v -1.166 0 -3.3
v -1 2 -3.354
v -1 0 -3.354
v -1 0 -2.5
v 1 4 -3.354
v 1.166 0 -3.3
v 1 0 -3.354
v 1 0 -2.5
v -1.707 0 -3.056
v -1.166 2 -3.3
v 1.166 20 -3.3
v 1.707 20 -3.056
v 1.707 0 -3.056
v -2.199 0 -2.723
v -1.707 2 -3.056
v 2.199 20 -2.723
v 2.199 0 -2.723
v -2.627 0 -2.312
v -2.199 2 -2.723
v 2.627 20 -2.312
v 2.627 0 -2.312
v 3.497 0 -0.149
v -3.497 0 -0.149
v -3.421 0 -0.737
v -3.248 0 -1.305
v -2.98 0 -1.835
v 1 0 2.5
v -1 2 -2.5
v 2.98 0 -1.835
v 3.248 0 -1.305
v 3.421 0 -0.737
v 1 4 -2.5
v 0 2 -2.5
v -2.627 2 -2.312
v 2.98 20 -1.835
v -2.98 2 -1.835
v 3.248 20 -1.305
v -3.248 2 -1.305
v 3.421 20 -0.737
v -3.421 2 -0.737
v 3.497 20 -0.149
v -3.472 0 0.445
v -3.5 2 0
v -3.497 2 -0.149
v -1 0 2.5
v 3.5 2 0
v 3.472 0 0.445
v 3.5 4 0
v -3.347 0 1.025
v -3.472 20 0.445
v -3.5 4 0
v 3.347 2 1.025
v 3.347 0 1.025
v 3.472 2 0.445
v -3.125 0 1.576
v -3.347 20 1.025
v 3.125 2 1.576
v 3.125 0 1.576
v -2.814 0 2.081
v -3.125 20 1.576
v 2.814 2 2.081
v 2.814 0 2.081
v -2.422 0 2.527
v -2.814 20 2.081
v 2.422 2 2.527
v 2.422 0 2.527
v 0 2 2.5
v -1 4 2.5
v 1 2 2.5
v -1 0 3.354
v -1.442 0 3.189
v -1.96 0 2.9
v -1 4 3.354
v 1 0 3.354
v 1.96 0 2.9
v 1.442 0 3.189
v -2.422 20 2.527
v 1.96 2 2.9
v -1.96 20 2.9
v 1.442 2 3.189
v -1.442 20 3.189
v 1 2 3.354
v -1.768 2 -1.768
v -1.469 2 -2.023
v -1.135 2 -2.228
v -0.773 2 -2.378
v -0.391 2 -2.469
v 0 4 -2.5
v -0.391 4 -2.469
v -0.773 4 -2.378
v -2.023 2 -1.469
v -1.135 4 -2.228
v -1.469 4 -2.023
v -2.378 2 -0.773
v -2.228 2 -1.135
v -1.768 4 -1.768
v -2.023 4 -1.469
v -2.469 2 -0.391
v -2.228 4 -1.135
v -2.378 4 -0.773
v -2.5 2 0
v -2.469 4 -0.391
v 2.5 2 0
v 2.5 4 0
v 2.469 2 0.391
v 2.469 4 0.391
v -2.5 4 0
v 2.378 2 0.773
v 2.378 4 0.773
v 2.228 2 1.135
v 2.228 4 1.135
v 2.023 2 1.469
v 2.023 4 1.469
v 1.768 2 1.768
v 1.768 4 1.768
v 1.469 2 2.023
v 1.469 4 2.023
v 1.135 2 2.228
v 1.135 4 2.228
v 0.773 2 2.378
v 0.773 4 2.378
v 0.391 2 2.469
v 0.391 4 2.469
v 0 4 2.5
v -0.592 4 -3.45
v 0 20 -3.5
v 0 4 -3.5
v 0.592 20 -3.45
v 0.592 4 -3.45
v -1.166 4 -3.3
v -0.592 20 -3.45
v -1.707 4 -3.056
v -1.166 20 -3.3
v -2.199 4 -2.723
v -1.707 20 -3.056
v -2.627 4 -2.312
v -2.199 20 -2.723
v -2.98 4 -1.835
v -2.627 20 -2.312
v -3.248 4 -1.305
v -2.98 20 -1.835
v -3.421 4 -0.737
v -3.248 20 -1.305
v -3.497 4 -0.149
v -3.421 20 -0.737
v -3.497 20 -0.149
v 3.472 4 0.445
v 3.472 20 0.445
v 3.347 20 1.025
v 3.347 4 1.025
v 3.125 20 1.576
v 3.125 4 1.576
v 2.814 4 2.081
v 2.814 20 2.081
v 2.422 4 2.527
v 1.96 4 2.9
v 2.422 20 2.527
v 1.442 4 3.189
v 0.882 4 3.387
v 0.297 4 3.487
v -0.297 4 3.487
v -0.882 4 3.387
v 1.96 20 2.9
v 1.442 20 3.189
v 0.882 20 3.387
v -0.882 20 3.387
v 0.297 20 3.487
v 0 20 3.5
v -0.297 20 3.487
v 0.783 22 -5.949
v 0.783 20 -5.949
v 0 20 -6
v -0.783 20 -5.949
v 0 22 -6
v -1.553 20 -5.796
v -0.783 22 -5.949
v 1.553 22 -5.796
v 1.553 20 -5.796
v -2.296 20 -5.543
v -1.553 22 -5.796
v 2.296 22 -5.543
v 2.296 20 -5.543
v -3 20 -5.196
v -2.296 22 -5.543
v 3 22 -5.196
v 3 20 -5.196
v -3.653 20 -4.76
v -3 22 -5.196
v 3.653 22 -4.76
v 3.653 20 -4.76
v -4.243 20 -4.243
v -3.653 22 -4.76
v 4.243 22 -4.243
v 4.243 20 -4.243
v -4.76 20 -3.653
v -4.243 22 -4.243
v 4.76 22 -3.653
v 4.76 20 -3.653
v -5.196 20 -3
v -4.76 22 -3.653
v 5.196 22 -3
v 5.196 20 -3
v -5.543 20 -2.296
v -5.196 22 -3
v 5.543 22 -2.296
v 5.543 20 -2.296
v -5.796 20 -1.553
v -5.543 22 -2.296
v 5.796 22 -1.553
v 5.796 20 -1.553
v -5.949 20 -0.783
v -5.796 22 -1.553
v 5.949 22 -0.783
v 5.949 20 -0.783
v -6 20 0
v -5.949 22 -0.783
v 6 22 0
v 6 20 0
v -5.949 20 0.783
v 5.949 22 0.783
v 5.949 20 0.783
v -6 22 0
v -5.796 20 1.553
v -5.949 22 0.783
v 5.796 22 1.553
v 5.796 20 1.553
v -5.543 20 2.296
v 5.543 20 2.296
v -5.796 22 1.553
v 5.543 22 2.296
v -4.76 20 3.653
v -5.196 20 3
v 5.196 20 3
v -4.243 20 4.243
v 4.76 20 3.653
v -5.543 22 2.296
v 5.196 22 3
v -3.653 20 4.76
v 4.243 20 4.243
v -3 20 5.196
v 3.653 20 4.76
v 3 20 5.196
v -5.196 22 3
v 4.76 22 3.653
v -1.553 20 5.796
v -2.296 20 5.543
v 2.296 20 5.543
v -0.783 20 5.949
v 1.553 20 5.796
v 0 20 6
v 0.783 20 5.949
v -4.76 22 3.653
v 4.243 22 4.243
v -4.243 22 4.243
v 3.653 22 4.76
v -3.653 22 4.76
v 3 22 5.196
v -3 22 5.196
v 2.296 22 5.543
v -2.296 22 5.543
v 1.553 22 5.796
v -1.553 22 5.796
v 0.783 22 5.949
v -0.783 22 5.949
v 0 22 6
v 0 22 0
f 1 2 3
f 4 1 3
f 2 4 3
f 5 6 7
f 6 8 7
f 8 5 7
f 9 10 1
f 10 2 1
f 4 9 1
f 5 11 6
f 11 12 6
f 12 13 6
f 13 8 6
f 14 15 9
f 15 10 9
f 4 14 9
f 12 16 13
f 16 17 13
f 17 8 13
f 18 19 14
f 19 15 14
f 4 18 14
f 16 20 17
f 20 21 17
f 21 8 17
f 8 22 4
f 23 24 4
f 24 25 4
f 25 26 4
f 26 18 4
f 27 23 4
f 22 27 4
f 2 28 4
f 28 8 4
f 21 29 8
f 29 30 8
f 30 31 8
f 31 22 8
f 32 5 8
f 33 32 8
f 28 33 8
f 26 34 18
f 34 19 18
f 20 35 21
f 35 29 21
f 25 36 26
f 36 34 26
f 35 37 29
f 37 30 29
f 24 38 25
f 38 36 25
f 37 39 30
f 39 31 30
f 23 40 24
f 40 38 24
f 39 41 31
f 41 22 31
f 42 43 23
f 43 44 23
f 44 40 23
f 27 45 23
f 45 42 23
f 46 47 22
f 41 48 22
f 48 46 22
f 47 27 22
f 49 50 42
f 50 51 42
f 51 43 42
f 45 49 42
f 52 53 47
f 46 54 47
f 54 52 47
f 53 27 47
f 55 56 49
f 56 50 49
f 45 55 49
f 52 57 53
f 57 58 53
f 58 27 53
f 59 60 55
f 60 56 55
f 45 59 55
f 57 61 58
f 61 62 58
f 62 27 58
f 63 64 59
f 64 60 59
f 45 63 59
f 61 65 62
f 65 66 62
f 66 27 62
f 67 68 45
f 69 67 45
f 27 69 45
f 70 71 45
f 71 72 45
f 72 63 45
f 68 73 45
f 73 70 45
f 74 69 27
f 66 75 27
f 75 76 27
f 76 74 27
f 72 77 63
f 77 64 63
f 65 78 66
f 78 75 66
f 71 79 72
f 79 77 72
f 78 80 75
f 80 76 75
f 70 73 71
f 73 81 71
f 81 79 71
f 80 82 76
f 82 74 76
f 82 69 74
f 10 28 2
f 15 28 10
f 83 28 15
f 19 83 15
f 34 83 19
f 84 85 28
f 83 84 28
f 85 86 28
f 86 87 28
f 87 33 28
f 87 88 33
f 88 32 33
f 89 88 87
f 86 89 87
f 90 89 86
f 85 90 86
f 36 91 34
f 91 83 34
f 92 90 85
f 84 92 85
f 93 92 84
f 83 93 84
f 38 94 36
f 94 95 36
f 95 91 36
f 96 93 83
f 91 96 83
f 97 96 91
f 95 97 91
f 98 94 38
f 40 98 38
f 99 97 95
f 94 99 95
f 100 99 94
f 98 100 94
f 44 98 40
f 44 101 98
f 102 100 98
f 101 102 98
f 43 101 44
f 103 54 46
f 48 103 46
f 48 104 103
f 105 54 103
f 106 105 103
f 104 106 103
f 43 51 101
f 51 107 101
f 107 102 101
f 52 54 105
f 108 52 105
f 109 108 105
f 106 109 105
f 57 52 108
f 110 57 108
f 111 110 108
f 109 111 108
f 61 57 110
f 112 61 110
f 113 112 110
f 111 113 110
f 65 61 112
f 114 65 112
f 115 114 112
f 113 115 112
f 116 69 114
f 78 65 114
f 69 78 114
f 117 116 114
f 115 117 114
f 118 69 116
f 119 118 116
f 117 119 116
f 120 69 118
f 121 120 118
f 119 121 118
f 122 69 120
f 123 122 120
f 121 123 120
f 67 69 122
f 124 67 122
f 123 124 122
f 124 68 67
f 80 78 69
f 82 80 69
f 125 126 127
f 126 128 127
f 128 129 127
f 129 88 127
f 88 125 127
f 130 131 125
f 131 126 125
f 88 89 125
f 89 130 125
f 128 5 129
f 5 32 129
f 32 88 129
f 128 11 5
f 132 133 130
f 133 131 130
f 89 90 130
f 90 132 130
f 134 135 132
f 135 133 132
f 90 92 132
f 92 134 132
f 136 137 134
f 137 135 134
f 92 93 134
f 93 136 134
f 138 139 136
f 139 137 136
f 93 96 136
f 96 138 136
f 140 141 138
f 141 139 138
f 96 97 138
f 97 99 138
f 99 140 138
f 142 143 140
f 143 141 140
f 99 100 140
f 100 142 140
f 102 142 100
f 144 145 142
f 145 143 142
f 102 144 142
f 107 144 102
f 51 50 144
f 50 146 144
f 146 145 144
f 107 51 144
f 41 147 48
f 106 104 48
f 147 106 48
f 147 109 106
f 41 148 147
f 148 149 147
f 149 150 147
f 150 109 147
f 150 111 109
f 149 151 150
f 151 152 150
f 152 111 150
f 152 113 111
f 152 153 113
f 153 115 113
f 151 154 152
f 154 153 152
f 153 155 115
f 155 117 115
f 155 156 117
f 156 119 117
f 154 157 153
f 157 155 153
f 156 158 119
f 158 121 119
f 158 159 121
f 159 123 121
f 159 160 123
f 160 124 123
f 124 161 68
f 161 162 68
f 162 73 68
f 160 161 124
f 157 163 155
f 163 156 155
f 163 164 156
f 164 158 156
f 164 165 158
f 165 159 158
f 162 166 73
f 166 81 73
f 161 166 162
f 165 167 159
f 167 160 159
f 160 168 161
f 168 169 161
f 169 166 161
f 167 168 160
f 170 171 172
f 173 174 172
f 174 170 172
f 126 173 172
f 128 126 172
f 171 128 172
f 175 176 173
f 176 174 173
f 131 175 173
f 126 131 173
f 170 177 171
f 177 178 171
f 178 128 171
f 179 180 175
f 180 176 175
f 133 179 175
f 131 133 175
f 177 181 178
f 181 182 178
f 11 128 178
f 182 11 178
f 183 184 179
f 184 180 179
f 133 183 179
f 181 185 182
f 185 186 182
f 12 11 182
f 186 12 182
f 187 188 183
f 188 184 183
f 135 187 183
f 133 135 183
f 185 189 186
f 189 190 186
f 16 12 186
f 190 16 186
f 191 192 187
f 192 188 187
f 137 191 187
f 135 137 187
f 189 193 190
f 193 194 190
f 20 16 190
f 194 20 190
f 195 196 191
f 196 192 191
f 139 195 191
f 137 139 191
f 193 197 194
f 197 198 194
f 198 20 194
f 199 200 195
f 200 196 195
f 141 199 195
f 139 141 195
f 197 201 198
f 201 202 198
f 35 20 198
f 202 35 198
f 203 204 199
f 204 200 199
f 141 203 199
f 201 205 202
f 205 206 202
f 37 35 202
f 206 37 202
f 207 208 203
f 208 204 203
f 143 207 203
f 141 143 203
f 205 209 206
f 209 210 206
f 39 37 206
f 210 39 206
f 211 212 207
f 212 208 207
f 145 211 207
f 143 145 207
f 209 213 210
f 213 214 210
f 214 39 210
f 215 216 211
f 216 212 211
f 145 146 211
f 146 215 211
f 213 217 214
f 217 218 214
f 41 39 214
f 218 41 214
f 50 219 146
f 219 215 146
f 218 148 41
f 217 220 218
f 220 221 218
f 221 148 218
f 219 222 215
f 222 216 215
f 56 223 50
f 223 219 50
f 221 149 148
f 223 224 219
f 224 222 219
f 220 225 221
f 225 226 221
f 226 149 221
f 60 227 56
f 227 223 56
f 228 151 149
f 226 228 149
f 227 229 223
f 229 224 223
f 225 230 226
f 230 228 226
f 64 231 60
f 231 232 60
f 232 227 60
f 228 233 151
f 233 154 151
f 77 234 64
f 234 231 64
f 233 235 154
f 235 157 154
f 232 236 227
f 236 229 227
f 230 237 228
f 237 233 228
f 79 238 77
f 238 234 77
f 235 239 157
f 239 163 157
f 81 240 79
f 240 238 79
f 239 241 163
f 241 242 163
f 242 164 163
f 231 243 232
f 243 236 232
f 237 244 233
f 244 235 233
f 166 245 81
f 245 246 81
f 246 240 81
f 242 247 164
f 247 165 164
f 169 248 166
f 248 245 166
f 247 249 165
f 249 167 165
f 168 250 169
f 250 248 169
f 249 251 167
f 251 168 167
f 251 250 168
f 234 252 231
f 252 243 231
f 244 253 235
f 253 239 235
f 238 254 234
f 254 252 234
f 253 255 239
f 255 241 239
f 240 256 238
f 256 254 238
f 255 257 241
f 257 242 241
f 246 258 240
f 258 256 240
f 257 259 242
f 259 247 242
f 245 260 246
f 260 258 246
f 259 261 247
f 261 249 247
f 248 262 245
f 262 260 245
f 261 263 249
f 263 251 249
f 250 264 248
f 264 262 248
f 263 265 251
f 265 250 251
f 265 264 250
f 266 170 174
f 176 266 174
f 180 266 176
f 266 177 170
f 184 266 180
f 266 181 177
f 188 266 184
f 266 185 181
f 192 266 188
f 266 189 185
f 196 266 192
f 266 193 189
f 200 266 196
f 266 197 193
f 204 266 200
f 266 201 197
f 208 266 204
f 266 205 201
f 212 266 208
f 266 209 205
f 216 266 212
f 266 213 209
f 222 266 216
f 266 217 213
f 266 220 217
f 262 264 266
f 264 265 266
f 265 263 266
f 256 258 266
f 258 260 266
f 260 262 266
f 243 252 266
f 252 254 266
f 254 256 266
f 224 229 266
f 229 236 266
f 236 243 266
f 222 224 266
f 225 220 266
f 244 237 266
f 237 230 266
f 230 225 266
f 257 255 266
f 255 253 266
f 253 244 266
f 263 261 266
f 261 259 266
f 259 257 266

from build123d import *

# Parameters (mm, degrees)
SKETCH1_R           = 3.5
BOSS_EXTRUDE1_DEPTH = 20
SKETCH2_R           = 6
BOSS_EXTRUDE2_DEPTH = 2
CUT_EXTRUDE1_DEPTH  = 4
SKETCH6_W           = 1
SKETCH6_H           = 2
CUT_REVOLVE1_ANGLE  = 90


with BuildPart() as part:
    # Sketch1 → Boss-Extrude1 (new body)
    with BuildSketch(Plane(origin=(0, 0, 0), x_dir=(1, 0, 0), z_dir=(0, 1, 0))):
        Circle(SKETCH1_R)
    extrude(amount=BOSS_EXTRUDE1_DEPTH)

    # Sketch2 → Boss-Extrude2 (add)
    with BuildSketch(Plane(origin=(0, 20, 0), x_dir=(1, 0, 0), z_dir=(0, 1, 0))):
        Circle(SKETCH2_R)
    extrude(amount=BOSS_EXTRUDE2_DEPTH)

    # Sketch3 → Cut-Extrude1 (cut)
    with BuildSketch(Plane.XZ):
        Polygon((0, 3.5), (-1, 3.5), (-1, 2.5), (1, 2.5), (1, 3.5), align=None)
        Polygon((-1, -3.5), (-1, -2.5), (1, -2.5), (1, -3.5), (0, -3.5), align=None)
    extrude(amount=-CUT_EXTRUDE1_DEPTH, mode=Mode.SUBTRACT)

    # Sketch6 → Cut-Revolve1 (revolve, cut)
    with BuildSketch(Plane(origin=(0, 0, 0), x_dir=(0, 0, -1), z_dir=(1, 0, 0))):
        with Locations((3, 3)):
            Rectangle(SKETCH6_W, SKETCH6_H)
        with Locations((-3, 3)):
            Rectangle(SKETCH6_W, SKETCH6_H)
    revolve(axis=Axis((0, 0, 0), (0, 1, 0)), revolution_arc=CUT_REVOLVE1_ANGLE, mode=Mode.SUBTRACT)


solid = part.part
